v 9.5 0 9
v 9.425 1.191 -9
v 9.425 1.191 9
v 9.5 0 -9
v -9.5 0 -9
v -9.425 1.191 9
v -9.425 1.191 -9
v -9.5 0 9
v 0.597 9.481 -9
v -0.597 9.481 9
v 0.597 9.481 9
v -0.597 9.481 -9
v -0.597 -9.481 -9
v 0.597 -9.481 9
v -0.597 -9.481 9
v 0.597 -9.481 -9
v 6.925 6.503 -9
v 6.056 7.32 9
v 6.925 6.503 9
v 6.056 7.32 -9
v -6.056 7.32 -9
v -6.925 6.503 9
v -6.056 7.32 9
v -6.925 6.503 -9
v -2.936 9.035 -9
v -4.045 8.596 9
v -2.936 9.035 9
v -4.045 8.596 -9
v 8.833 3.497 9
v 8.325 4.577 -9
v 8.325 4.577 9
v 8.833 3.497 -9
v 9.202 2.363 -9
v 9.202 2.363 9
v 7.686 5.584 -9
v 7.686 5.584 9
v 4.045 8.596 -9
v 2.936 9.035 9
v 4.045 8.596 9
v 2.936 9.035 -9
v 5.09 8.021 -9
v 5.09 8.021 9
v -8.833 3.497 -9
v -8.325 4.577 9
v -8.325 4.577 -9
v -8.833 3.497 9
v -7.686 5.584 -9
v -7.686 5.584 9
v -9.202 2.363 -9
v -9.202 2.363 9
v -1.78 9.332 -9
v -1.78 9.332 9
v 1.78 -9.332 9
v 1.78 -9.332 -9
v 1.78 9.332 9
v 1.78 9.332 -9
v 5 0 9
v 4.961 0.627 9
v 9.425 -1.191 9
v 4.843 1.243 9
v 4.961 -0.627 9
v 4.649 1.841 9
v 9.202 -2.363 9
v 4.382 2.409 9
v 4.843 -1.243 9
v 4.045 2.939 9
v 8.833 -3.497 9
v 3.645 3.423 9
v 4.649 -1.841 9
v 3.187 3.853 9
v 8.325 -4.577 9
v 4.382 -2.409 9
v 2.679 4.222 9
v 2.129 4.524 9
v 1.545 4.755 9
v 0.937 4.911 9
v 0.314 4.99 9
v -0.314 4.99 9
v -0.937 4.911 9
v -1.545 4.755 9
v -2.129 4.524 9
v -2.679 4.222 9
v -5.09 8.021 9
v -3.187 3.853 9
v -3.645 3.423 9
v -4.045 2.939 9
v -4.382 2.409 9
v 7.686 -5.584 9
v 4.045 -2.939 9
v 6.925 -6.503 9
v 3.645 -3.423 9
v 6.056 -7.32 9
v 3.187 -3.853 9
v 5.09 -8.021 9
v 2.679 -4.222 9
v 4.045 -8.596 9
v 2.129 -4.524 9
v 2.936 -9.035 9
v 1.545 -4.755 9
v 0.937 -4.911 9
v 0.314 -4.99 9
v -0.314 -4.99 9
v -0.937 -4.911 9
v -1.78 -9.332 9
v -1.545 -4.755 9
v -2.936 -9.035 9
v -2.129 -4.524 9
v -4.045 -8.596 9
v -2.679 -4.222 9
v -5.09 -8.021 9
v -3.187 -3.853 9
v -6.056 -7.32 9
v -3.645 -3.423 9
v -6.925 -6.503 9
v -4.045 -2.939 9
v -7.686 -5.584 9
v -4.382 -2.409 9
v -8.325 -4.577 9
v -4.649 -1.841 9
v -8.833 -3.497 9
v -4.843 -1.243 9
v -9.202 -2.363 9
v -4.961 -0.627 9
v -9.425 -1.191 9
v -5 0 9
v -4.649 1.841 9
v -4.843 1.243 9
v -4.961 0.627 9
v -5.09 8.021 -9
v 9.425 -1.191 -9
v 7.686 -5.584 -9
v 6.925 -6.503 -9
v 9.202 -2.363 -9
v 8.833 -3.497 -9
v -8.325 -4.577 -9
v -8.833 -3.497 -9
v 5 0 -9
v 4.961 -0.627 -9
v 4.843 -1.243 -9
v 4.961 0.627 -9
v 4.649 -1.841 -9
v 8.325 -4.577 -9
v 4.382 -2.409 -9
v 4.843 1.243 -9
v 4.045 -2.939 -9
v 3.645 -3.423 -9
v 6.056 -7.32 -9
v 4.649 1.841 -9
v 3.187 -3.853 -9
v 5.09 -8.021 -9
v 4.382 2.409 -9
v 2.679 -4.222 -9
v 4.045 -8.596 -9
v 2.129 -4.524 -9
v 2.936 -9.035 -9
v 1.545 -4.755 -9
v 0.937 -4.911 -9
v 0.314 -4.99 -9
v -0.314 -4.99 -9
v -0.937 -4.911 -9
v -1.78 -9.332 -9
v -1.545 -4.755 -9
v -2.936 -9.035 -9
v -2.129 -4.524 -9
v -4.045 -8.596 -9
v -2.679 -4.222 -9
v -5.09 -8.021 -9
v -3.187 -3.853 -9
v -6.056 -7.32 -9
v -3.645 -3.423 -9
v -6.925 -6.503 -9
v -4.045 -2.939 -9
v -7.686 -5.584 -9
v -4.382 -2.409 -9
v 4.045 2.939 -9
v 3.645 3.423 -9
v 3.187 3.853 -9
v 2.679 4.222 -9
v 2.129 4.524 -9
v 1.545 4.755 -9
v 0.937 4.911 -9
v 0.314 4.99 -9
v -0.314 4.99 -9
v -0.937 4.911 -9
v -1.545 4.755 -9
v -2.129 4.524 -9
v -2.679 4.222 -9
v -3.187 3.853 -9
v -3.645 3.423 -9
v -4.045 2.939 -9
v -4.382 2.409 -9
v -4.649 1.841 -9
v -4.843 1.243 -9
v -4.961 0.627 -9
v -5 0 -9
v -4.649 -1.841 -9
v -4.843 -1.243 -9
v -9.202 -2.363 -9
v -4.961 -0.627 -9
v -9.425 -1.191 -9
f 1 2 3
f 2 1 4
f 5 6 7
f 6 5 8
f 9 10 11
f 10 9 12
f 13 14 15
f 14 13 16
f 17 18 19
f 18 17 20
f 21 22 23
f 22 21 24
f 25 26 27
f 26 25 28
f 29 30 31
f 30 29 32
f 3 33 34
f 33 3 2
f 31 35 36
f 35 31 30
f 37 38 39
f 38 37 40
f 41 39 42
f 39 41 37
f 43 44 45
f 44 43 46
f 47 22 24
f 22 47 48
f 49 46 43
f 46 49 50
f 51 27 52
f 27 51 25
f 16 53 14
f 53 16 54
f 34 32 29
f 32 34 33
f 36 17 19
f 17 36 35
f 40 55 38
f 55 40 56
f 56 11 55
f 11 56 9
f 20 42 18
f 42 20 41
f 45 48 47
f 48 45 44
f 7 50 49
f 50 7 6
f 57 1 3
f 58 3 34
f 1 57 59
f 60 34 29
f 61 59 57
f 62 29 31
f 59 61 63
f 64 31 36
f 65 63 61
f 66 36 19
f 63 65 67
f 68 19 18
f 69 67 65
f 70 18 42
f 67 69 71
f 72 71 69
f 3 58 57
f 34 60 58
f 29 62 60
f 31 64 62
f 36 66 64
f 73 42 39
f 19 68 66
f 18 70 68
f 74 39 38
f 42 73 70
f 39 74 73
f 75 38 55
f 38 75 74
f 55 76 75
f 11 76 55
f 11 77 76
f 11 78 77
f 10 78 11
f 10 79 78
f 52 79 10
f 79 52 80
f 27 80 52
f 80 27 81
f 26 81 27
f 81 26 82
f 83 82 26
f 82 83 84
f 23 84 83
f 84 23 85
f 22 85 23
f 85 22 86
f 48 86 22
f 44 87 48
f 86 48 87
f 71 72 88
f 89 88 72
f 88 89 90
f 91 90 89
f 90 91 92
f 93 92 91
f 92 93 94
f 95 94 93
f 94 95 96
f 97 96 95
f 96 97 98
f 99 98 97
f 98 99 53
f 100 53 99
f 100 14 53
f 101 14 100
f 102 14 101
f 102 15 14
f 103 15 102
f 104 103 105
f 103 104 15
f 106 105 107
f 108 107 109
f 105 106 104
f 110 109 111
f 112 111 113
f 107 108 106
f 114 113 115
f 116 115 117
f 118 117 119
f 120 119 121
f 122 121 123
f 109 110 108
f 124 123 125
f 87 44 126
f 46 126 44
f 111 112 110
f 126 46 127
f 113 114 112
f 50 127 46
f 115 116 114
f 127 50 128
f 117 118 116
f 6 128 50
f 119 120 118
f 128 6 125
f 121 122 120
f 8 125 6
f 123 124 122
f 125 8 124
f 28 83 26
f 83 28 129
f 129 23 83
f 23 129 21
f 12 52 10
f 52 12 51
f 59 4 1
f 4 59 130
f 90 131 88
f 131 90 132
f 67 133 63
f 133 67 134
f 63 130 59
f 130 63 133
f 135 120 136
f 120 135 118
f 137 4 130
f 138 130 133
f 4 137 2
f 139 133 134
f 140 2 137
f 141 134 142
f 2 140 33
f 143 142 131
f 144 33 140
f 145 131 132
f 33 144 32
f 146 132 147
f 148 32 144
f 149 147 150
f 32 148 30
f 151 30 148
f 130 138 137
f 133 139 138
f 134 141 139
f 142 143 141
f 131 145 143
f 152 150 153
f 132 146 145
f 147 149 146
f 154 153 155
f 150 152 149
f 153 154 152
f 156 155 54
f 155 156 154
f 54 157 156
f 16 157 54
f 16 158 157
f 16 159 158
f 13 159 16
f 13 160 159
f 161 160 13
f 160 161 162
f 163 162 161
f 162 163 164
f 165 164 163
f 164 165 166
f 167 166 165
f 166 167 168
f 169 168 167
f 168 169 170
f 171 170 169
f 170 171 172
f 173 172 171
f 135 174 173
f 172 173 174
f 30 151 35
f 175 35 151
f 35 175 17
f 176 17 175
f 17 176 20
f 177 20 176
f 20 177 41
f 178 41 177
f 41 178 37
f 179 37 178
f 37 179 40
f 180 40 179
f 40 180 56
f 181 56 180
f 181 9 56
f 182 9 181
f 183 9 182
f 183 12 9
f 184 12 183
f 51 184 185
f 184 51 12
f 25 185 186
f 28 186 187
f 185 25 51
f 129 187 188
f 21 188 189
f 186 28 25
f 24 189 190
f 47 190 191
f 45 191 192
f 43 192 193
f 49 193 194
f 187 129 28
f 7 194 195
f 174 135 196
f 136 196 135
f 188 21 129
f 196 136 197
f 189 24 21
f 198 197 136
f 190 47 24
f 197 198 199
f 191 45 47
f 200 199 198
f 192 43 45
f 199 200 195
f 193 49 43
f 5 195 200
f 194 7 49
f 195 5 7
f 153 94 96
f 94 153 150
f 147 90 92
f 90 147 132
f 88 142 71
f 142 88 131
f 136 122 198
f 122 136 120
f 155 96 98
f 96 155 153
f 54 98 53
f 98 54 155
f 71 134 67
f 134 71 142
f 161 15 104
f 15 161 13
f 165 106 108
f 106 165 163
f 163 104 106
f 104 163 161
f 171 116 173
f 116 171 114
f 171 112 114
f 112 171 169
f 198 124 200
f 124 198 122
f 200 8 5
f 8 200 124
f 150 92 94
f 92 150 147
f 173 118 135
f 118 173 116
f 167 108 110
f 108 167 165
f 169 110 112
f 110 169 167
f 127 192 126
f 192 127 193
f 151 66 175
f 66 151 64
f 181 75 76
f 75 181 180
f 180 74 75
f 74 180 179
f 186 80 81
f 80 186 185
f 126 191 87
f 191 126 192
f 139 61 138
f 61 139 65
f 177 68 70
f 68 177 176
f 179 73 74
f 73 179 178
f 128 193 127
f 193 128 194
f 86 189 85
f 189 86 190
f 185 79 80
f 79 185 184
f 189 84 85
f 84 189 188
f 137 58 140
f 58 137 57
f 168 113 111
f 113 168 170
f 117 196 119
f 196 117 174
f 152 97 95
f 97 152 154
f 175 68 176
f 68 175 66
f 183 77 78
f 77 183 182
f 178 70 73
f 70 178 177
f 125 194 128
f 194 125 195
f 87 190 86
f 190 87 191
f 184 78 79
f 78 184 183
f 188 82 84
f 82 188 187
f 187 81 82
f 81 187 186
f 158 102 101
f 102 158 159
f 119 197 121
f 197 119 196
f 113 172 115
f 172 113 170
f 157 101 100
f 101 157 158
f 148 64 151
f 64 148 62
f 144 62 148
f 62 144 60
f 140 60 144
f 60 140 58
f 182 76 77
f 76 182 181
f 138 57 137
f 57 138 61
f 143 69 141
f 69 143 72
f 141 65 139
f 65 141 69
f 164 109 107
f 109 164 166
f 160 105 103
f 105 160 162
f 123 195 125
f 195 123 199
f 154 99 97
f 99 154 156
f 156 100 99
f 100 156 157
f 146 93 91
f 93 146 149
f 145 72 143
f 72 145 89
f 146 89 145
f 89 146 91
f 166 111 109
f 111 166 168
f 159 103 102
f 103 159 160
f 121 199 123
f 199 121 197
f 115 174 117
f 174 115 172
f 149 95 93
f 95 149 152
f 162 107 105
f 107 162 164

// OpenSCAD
$fn = 50;


difference() {
	union() {
		translate(v = [0, 0, -9.0000000000]) {
			cylinder(h = 18, r = 9.5000000000);
		}
	}
	union() {
		translate(v = [0, 0, -100.0000000000]) {
			cylinder(h = 200, r = 5.0000000000);
		}
	}
}
